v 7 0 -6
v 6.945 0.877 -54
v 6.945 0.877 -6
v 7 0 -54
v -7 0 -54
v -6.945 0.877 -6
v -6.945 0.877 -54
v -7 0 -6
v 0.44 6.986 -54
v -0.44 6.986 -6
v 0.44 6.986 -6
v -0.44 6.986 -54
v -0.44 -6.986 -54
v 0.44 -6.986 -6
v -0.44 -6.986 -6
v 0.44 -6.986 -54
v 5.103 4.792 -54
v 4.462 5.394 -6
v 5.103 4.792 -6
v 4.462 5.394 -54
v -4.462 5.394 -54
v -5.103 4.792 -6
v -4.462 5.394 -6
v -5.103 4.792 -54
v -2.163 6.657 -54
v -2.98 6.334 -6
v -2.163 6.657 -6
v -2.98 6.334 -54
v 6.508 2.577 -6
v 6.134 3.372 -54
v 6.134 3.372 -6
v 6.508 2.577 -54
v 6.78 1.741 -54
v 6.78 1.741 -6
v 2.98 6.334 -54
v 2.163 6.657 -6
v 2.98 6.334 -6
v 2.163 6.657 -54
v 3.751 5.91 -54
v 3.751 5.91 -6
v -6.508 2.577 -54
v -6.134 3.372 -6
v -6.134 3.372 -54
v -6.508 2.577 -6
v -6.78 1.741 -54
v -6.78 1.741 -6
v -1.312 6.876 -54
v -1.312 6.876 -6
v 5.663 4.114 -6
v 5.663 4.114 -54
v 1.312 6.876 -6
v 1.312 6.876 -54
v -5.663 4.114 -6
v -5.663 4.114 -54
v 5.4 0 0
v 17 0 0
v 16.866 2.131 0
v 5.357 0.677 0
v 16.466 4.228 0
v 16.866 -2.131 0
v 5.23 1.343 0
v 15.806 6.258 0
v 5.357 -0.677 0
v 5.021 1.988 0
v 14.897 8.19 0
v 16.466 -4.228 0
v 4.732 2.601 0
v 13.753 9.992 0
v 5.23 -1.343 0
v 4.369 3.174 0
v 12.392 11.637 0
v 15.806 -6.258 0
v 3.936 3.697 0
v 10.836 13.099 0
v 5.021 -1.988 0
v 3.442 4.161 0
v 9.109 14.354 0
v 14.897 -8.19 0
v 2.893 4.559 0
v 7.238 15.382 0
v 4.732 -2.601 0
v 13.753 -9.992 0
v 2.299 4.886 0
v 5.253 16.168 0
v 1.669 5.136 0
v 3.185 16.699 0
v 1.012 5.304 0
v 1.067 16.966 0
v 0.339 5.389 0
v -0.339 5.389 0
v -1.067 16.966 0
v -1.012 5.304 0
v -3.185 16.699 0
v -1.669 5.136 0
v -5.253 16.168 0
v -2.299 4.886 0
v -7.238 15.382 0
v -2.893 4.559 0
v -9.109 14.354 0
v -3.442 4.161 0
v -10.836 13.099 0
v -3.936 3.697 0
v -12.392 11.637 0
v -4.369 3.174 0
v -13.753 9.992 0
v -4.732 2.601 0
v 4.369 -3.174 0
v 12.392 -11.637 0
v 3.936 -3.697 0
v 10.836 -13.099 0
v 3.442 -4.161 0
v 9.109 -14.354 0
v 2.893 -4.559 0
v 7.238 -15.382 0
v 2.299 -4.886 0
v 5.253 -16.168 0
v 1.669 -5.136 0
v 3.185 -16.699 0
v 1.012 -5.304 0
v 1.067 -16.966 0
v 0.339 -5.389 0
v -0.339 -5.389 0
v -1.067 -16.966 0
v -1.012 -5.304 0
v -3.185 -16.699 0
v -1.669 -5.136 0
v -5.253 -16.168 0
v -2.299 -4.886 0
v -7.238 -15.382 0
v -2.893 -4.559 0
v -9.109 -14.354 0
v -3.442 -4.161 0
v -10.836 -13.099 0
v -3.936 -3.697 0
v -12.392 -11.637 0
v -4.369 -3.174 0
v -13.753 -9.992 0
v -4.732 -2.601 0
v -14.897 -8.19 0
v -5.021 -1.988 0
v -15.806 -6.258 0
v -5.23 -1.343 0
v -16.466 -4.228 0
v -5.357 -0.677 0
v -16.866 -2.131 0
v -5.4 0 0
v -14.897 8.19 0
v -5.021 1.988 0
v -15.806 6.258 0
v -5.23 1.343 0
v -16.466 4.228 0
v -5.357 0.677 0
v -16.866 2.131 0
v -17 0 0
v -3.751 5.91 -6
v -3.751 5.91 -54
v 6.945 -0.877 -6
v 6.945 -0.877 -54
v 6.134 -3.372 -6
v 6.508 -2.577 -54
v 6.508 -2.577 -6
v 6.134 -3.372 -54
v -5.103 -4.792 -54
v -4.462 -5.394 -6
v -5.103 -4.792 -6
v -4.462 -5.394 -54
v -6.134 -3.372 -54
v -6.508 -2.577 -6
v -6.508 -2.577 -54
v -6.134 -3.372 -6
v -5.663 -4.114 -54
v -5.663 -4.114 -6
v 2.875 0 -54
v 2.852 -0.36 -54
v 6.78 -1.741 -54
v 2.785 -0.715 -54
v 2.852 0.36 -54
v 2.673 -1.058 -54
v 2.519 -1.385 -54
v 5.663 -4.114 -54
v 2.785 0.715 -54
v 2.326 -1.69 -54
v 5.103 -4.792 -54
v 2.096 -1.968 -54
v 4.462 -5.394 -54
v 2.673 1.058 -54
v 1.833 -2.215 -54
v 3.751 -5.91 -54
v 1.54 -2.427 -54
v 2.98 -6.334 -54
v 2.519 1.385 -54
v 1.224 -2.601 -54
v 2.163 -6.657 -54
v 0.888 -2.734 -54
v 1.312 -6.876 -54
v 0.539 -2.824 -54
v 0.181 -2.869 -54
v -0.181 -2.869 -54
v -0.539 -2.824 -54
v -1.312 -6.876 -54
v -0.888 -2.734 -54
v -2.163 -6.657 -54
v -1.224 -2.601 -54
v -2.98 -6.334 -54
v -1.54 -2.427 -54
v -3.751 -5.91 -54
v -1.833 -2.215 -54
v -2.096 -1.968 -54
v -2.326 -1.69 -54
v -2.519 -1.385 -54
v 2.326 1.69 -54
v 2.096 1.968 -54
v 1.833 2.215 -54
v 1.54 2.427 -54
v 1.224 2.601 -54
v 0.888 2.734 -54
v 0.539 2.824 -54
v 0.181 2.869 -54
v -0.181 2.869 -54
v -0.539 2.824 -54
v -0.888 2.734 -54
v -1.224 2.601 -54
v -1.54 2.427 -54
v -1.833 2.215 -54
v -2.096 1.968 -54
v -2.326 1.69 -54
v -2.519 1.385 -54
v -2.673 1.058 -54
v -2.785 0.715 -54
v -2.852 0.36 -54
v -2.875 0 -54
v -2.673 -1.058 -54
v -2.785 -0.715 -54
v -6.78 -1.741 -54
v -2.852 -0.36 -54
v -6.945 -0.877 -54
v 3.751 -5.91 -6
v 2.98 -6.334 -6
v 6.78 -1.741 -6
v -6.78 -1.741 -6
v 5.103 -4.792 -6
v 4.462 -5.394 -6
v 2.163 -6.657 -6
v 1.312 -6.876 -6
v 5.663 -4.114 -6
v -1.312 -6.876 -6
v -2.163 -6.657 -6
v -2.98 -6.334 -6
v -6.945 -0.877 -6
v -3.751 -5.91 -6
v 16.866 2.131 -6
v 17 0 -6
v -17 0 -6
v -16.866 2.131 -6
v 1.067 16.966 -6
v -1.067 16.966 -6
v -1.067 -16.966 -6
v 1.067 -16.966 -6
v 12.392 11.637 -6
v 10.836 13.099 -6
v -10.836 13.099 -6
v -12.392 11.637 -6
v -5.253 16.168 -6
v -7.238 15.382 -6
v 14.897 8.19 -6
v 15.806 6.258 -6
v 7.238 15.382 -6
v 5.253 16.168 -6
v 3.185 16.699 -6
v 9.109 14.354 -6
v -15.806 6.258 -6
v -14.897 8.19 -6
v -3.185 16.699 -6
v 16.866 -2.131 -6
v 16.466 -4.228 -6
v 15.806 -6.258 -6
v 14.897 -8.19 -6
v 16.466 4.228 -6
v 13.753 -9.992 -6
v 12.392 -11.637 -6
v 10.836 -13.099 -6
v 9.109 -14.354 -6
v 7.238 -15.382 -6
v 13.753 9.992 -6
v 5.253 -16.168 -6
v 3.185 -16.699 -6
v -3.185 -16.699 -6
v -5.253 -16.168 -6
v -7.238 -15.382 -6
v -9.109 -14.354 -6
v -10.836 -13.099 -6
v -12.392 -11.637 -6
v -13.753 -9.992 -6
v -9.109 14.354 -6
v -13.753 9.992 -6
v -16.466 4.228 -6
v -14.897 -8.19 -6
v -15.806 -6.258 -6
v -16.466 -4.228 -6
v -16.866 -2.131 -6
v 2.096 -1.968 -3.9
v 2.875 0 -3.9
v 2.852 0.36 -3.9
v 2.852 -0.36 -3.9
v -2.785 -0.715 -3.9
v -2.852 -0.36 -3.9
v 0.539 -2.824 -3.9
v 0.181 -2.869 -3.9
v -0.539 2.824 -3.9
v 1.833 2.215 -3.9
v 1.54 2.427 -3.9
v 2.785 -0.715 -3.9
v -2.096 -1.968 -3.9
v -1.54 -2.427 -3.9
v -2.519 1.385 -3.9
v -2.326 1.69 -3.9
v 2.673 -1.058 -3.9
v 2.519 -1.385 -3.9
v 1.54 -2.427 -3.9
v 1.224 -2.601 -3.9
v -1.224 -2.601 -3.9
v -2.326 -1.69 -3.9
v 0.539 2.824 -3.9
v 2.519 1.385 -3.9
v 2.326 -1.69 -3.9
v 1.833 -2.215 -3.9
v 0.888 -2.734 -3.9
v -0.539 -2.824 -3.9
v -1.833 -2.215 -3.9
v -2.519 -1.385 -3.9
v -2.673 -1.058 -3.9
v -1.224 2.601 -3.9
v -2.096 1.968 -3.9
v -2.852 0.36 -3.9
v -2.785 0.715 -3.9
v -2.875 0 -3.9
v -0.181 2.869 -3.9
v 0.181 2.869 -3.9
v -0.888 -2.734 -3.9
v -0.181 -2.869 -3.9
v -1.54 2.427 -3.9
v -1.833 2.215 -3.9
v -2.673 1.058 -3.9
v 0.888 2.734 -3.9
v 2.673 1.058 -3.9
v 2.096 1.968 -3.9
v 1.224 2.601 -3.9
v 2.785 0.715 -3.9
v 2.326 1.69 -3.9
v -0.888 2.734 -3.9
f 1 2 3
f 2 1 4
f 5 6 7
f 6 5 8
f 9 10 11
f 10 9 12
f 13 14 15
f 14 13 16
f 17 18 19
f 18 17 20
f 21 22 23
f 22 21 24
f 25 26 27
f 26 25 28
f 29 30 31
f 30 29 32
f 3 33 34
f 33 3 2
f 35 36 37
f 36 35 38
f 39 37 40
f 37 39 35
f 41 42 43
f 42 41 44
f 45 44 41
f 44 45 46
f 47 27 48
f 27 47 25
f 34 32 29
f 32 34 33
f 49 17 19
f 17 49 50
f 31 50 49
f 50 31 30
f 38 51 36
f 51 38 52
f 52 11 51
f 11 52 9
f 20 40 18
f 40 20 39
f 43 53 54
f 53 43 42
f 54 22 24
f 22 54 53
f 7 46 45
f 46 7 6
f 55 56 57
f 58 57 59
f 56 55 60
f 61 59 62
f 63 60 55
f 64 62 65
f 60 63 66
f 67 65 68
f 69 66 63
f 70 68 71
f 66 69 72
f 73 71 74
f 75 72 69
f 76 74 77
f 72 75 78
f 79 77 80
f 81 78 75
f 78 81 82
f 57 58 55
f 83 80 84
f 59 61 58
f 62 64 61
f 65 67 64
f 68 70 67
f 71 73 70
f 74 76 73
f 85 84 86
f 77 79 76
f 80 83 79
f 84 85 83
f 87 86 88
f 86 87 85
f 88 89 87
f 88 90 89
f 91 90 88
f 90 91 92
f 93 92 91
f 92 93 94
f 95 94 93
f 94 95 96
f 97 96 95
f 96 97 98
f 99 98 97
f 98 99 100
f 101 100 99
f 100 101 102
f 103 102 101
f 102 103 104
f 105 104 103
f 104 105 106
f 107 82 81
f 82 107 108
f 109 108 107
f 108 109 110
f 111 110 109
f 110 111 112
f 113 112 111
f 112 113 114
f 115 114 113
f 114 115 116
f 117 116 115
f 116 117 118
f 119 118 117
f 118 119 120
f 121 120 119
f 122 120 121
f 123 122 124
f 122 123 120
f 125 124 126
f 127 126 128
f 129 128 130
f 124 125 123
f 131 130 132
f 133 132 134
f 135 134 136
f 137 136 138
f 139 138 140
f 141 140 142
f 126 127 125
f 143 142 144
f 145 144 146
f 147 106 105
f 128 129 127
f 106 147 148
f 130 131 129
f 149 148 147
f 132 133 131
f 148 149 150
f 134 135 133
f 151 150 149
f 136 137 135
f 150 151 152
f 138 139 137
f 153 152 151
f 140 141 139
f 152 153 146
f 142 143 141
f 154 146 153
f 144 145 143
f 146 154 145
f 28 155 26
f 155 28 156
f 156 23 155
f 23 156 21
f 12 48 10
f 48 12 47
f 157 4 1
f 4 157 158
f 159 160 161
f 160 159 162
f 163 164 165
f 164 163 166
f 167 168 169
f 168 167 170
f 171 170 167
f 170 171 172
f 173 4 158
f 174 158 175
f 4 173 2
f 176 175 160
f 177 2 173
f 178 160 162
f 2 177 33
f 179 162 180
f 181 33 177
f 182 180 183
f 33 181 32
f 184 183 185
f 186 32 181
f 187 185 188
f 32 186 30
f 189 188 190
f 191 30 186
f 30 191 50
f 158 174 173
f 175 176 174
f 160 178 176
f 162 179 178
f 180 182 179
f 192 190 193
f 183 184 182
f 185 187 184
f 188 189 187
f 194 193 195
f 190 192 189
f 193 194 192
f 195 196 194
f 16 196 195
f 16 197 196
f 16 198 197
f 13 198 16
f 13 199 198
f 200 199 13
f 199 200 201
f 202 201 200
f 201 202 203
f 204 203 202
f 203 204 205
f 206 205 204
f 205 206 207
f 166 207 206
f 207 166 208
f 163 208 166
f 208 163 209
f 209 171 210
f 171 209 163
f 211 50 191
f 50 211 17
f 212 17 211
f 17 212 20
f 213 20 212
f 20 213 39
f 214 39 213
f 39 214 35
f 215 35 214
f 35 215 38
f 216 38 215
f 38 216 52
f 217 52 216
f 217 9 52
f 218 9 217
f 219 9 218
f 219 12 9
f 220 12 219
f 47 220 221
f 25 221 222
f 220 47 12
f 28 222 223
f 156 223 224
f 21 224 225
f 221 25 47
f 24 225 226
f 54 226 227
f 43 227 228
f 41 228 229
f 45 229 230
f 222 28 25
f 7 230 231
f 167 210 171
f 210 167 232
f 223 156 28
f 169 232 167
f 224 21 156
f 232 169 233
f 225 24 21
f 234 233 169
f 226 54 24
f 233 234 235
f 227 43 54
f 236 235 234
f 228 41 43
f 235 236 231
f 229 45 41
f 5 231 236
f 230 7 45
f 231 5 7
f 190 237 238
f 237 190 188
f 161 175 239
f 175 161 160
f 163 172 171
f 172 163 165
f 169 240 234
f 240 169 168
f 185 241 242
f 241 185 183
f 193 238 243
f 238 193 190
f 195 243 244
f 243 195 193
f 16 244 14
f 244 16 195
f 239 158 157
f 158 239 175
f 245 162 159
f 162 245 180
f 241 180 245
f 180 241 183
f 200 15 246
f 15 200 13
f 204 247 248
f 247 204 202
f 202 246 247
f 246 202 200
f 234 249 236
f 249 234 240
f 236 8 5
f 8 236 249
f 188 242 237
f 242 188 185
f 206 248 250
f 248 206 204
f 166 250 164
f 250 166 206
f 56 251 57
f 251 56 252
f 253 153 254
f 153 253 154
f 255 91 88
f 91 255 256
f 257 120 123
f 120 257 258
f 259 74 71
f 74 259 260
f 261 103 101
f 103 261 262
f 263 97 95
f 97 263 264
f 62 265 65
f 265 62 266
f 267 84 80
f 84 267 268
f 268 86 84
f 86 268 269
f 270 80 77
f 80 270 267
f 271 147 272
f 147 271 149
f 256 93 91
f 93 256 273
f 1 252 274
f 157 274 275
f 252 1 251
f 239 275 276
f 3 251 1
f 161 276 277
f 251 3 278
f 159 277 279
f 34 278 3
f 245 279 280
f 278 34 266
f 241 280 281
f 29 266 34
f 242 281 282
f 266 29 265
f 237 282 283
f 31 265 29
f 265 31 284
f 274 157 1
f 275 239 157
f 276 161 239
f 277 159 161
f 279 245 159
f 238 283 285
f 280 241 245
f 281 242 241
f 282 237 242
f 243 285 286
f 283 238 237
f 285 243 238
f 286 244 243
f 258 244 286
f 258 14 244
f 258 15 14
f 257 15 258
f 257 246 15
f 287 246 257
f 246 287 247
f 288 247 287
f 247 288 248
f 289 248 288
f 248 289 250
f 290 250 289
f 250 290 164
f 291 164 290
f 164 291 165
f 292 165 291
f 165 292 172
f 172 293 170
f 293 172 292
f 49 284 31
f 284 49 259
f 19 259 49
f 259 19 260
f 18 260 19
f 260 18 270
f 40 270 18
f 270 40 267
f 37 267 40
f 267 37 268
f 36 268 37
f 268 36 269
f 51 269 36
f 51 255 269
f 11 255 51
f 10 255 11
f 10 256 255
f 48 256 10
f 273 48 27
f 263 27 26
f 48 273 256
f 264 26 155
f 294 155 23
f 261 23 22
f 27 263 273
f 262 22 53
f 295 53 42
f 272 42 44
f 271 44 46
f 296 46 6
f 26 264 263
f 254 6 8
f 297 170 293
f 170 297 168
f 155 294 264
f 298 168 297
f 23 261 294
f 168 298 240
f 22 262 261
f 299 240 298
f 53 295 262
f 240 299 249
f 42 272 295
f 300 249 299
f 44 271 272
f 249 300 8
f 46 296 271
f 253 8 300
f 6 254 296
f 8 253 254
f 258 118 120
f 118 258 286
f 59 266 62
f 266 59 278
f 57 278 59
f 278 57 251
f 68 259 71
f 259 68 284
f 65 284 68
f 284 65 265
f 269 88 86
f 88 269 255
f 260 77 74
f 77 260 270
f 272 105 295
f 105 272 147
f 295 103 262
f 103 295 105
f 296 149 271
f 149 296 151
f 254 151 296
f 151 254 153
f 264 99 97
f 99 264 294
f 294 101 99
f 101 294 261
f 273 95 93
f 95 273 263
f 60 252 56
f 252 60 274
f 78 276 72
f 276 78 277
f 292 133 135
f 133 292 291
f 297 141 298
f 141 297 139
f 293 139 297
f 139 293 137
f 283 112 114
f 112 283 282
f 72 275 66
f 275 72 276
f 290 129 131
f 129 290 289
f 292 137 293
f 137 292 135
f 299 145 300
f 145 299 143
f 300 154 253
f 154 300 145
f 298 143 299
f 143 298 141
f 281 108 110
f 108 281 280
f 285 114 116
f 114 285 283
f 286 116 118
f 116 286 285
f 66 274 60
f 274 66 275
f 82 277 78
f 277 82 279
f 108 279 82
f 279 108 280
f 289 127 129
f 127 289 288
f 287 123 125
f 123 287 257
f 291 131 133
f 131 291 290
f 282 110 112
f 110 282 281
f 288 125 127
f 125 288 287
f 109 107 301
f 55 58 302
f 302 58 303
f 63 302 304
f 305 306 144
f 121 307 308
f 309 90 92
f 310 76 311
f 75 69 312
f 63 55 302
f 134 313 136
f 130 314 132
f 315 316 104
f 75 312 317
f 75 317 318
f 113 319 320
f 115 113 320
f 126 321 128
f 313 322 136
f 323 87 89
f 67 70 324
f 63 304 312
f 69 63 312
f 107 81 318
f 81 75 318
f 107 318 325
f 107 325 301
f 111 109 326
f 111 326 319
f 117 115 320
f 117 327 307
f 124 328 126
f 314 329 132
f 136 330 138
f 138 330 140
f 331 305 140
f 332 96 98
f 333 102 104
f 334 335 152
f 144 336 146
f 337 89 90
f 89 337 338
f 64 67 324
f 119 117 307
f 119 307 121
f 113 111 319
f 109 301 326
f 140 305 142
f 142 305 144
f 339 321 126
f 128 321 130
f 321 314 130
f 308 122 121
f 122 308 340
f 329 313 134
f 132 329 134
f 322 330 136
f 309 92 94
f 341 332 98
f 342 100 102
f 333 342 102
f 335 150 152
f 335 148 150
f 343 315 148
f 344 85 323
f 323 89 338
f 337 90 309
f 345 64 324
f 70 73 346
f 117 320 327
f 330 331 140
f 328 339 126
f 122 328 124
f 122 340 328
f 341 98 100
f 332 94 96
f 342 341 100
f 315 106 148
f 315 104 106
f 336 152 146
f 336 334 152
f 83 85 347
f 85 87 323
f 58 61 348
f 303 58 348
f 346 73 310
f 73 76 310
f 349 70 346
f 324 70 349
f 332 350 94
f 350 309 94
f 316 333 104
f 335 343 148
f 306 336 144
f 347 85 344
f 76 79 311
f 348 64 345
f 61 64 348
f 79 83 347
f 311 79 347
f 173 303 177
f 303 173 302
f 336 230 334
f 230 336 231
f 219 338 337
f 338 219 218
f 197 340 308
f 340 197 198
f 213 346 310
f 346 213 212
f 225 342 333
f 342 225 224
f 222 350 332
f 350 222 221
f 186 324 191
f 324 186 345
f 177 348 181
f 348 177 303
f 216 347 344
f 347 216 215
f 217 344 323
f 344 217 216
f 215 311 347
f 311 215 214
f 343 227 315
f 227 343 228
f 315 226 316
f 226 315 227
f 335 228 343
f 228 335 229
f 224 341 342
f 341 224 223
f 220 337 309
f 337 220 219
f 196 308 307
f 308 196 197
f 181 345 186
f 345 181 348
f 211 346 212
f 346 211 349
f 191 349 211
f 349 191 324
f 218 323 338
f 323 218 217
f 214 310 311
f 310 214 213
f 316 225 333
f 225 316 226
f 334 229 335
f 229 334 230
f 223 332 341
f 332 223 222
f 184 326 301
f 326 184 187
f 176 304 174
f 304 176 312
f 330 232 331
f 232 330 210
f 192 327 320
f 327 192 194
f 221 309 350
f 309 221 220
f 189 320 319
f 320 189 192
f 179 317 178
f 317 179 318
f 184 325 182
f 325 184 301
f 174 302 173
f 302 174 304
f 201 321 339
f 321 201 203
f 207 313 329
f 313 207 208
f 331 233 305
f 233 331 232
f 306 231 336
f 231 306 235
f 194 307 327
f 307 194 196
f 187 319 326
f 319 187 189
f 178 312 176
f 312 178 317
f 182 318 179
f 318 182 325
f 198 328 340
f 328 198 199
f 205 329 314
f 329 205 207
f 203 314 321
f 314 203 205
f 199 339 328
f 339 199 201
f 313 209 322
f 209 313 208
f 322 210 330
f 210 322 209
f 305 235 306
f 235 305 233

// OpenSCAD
$fn = 50;


difference() {
	union() {
		translate(v = [0, 0, -54.0000000000]) {
			cylinder(h = 54, r = 7.0000000000);
		}
		translate(v = [0, 0, -6.0000000000]) {
			cylinder(h = 6, r = 17.0000000000);
		}
	}
	union() {
		translate(v = [0, 0, 0]) {
			rotate(a = [0, 0, 0]) {
				difference() {
					union() {
						#translate(v = [0, 0, -54.0000000000]) {
							cylinder(h = 54, r = 2.6000000000);
						}
						#translate(v = [0, 0, -3.9000000000]) {
							cylinder(h = 3.9000000000, r = 7.0000000000, r1 = 2.8750000000, r2 = 5.4000000000);
						}
						#translate(v = [0, 0, -54.0000000000]) {
							cylinder(h = 54, r = 2.8750000000);
						}
						#translate(v = [0, 0, -54.0000000000]) {
							cylinder(h = 54, r = 2.6000000000);
						}
					}
					union();
				}
			}
		}
	}
}
